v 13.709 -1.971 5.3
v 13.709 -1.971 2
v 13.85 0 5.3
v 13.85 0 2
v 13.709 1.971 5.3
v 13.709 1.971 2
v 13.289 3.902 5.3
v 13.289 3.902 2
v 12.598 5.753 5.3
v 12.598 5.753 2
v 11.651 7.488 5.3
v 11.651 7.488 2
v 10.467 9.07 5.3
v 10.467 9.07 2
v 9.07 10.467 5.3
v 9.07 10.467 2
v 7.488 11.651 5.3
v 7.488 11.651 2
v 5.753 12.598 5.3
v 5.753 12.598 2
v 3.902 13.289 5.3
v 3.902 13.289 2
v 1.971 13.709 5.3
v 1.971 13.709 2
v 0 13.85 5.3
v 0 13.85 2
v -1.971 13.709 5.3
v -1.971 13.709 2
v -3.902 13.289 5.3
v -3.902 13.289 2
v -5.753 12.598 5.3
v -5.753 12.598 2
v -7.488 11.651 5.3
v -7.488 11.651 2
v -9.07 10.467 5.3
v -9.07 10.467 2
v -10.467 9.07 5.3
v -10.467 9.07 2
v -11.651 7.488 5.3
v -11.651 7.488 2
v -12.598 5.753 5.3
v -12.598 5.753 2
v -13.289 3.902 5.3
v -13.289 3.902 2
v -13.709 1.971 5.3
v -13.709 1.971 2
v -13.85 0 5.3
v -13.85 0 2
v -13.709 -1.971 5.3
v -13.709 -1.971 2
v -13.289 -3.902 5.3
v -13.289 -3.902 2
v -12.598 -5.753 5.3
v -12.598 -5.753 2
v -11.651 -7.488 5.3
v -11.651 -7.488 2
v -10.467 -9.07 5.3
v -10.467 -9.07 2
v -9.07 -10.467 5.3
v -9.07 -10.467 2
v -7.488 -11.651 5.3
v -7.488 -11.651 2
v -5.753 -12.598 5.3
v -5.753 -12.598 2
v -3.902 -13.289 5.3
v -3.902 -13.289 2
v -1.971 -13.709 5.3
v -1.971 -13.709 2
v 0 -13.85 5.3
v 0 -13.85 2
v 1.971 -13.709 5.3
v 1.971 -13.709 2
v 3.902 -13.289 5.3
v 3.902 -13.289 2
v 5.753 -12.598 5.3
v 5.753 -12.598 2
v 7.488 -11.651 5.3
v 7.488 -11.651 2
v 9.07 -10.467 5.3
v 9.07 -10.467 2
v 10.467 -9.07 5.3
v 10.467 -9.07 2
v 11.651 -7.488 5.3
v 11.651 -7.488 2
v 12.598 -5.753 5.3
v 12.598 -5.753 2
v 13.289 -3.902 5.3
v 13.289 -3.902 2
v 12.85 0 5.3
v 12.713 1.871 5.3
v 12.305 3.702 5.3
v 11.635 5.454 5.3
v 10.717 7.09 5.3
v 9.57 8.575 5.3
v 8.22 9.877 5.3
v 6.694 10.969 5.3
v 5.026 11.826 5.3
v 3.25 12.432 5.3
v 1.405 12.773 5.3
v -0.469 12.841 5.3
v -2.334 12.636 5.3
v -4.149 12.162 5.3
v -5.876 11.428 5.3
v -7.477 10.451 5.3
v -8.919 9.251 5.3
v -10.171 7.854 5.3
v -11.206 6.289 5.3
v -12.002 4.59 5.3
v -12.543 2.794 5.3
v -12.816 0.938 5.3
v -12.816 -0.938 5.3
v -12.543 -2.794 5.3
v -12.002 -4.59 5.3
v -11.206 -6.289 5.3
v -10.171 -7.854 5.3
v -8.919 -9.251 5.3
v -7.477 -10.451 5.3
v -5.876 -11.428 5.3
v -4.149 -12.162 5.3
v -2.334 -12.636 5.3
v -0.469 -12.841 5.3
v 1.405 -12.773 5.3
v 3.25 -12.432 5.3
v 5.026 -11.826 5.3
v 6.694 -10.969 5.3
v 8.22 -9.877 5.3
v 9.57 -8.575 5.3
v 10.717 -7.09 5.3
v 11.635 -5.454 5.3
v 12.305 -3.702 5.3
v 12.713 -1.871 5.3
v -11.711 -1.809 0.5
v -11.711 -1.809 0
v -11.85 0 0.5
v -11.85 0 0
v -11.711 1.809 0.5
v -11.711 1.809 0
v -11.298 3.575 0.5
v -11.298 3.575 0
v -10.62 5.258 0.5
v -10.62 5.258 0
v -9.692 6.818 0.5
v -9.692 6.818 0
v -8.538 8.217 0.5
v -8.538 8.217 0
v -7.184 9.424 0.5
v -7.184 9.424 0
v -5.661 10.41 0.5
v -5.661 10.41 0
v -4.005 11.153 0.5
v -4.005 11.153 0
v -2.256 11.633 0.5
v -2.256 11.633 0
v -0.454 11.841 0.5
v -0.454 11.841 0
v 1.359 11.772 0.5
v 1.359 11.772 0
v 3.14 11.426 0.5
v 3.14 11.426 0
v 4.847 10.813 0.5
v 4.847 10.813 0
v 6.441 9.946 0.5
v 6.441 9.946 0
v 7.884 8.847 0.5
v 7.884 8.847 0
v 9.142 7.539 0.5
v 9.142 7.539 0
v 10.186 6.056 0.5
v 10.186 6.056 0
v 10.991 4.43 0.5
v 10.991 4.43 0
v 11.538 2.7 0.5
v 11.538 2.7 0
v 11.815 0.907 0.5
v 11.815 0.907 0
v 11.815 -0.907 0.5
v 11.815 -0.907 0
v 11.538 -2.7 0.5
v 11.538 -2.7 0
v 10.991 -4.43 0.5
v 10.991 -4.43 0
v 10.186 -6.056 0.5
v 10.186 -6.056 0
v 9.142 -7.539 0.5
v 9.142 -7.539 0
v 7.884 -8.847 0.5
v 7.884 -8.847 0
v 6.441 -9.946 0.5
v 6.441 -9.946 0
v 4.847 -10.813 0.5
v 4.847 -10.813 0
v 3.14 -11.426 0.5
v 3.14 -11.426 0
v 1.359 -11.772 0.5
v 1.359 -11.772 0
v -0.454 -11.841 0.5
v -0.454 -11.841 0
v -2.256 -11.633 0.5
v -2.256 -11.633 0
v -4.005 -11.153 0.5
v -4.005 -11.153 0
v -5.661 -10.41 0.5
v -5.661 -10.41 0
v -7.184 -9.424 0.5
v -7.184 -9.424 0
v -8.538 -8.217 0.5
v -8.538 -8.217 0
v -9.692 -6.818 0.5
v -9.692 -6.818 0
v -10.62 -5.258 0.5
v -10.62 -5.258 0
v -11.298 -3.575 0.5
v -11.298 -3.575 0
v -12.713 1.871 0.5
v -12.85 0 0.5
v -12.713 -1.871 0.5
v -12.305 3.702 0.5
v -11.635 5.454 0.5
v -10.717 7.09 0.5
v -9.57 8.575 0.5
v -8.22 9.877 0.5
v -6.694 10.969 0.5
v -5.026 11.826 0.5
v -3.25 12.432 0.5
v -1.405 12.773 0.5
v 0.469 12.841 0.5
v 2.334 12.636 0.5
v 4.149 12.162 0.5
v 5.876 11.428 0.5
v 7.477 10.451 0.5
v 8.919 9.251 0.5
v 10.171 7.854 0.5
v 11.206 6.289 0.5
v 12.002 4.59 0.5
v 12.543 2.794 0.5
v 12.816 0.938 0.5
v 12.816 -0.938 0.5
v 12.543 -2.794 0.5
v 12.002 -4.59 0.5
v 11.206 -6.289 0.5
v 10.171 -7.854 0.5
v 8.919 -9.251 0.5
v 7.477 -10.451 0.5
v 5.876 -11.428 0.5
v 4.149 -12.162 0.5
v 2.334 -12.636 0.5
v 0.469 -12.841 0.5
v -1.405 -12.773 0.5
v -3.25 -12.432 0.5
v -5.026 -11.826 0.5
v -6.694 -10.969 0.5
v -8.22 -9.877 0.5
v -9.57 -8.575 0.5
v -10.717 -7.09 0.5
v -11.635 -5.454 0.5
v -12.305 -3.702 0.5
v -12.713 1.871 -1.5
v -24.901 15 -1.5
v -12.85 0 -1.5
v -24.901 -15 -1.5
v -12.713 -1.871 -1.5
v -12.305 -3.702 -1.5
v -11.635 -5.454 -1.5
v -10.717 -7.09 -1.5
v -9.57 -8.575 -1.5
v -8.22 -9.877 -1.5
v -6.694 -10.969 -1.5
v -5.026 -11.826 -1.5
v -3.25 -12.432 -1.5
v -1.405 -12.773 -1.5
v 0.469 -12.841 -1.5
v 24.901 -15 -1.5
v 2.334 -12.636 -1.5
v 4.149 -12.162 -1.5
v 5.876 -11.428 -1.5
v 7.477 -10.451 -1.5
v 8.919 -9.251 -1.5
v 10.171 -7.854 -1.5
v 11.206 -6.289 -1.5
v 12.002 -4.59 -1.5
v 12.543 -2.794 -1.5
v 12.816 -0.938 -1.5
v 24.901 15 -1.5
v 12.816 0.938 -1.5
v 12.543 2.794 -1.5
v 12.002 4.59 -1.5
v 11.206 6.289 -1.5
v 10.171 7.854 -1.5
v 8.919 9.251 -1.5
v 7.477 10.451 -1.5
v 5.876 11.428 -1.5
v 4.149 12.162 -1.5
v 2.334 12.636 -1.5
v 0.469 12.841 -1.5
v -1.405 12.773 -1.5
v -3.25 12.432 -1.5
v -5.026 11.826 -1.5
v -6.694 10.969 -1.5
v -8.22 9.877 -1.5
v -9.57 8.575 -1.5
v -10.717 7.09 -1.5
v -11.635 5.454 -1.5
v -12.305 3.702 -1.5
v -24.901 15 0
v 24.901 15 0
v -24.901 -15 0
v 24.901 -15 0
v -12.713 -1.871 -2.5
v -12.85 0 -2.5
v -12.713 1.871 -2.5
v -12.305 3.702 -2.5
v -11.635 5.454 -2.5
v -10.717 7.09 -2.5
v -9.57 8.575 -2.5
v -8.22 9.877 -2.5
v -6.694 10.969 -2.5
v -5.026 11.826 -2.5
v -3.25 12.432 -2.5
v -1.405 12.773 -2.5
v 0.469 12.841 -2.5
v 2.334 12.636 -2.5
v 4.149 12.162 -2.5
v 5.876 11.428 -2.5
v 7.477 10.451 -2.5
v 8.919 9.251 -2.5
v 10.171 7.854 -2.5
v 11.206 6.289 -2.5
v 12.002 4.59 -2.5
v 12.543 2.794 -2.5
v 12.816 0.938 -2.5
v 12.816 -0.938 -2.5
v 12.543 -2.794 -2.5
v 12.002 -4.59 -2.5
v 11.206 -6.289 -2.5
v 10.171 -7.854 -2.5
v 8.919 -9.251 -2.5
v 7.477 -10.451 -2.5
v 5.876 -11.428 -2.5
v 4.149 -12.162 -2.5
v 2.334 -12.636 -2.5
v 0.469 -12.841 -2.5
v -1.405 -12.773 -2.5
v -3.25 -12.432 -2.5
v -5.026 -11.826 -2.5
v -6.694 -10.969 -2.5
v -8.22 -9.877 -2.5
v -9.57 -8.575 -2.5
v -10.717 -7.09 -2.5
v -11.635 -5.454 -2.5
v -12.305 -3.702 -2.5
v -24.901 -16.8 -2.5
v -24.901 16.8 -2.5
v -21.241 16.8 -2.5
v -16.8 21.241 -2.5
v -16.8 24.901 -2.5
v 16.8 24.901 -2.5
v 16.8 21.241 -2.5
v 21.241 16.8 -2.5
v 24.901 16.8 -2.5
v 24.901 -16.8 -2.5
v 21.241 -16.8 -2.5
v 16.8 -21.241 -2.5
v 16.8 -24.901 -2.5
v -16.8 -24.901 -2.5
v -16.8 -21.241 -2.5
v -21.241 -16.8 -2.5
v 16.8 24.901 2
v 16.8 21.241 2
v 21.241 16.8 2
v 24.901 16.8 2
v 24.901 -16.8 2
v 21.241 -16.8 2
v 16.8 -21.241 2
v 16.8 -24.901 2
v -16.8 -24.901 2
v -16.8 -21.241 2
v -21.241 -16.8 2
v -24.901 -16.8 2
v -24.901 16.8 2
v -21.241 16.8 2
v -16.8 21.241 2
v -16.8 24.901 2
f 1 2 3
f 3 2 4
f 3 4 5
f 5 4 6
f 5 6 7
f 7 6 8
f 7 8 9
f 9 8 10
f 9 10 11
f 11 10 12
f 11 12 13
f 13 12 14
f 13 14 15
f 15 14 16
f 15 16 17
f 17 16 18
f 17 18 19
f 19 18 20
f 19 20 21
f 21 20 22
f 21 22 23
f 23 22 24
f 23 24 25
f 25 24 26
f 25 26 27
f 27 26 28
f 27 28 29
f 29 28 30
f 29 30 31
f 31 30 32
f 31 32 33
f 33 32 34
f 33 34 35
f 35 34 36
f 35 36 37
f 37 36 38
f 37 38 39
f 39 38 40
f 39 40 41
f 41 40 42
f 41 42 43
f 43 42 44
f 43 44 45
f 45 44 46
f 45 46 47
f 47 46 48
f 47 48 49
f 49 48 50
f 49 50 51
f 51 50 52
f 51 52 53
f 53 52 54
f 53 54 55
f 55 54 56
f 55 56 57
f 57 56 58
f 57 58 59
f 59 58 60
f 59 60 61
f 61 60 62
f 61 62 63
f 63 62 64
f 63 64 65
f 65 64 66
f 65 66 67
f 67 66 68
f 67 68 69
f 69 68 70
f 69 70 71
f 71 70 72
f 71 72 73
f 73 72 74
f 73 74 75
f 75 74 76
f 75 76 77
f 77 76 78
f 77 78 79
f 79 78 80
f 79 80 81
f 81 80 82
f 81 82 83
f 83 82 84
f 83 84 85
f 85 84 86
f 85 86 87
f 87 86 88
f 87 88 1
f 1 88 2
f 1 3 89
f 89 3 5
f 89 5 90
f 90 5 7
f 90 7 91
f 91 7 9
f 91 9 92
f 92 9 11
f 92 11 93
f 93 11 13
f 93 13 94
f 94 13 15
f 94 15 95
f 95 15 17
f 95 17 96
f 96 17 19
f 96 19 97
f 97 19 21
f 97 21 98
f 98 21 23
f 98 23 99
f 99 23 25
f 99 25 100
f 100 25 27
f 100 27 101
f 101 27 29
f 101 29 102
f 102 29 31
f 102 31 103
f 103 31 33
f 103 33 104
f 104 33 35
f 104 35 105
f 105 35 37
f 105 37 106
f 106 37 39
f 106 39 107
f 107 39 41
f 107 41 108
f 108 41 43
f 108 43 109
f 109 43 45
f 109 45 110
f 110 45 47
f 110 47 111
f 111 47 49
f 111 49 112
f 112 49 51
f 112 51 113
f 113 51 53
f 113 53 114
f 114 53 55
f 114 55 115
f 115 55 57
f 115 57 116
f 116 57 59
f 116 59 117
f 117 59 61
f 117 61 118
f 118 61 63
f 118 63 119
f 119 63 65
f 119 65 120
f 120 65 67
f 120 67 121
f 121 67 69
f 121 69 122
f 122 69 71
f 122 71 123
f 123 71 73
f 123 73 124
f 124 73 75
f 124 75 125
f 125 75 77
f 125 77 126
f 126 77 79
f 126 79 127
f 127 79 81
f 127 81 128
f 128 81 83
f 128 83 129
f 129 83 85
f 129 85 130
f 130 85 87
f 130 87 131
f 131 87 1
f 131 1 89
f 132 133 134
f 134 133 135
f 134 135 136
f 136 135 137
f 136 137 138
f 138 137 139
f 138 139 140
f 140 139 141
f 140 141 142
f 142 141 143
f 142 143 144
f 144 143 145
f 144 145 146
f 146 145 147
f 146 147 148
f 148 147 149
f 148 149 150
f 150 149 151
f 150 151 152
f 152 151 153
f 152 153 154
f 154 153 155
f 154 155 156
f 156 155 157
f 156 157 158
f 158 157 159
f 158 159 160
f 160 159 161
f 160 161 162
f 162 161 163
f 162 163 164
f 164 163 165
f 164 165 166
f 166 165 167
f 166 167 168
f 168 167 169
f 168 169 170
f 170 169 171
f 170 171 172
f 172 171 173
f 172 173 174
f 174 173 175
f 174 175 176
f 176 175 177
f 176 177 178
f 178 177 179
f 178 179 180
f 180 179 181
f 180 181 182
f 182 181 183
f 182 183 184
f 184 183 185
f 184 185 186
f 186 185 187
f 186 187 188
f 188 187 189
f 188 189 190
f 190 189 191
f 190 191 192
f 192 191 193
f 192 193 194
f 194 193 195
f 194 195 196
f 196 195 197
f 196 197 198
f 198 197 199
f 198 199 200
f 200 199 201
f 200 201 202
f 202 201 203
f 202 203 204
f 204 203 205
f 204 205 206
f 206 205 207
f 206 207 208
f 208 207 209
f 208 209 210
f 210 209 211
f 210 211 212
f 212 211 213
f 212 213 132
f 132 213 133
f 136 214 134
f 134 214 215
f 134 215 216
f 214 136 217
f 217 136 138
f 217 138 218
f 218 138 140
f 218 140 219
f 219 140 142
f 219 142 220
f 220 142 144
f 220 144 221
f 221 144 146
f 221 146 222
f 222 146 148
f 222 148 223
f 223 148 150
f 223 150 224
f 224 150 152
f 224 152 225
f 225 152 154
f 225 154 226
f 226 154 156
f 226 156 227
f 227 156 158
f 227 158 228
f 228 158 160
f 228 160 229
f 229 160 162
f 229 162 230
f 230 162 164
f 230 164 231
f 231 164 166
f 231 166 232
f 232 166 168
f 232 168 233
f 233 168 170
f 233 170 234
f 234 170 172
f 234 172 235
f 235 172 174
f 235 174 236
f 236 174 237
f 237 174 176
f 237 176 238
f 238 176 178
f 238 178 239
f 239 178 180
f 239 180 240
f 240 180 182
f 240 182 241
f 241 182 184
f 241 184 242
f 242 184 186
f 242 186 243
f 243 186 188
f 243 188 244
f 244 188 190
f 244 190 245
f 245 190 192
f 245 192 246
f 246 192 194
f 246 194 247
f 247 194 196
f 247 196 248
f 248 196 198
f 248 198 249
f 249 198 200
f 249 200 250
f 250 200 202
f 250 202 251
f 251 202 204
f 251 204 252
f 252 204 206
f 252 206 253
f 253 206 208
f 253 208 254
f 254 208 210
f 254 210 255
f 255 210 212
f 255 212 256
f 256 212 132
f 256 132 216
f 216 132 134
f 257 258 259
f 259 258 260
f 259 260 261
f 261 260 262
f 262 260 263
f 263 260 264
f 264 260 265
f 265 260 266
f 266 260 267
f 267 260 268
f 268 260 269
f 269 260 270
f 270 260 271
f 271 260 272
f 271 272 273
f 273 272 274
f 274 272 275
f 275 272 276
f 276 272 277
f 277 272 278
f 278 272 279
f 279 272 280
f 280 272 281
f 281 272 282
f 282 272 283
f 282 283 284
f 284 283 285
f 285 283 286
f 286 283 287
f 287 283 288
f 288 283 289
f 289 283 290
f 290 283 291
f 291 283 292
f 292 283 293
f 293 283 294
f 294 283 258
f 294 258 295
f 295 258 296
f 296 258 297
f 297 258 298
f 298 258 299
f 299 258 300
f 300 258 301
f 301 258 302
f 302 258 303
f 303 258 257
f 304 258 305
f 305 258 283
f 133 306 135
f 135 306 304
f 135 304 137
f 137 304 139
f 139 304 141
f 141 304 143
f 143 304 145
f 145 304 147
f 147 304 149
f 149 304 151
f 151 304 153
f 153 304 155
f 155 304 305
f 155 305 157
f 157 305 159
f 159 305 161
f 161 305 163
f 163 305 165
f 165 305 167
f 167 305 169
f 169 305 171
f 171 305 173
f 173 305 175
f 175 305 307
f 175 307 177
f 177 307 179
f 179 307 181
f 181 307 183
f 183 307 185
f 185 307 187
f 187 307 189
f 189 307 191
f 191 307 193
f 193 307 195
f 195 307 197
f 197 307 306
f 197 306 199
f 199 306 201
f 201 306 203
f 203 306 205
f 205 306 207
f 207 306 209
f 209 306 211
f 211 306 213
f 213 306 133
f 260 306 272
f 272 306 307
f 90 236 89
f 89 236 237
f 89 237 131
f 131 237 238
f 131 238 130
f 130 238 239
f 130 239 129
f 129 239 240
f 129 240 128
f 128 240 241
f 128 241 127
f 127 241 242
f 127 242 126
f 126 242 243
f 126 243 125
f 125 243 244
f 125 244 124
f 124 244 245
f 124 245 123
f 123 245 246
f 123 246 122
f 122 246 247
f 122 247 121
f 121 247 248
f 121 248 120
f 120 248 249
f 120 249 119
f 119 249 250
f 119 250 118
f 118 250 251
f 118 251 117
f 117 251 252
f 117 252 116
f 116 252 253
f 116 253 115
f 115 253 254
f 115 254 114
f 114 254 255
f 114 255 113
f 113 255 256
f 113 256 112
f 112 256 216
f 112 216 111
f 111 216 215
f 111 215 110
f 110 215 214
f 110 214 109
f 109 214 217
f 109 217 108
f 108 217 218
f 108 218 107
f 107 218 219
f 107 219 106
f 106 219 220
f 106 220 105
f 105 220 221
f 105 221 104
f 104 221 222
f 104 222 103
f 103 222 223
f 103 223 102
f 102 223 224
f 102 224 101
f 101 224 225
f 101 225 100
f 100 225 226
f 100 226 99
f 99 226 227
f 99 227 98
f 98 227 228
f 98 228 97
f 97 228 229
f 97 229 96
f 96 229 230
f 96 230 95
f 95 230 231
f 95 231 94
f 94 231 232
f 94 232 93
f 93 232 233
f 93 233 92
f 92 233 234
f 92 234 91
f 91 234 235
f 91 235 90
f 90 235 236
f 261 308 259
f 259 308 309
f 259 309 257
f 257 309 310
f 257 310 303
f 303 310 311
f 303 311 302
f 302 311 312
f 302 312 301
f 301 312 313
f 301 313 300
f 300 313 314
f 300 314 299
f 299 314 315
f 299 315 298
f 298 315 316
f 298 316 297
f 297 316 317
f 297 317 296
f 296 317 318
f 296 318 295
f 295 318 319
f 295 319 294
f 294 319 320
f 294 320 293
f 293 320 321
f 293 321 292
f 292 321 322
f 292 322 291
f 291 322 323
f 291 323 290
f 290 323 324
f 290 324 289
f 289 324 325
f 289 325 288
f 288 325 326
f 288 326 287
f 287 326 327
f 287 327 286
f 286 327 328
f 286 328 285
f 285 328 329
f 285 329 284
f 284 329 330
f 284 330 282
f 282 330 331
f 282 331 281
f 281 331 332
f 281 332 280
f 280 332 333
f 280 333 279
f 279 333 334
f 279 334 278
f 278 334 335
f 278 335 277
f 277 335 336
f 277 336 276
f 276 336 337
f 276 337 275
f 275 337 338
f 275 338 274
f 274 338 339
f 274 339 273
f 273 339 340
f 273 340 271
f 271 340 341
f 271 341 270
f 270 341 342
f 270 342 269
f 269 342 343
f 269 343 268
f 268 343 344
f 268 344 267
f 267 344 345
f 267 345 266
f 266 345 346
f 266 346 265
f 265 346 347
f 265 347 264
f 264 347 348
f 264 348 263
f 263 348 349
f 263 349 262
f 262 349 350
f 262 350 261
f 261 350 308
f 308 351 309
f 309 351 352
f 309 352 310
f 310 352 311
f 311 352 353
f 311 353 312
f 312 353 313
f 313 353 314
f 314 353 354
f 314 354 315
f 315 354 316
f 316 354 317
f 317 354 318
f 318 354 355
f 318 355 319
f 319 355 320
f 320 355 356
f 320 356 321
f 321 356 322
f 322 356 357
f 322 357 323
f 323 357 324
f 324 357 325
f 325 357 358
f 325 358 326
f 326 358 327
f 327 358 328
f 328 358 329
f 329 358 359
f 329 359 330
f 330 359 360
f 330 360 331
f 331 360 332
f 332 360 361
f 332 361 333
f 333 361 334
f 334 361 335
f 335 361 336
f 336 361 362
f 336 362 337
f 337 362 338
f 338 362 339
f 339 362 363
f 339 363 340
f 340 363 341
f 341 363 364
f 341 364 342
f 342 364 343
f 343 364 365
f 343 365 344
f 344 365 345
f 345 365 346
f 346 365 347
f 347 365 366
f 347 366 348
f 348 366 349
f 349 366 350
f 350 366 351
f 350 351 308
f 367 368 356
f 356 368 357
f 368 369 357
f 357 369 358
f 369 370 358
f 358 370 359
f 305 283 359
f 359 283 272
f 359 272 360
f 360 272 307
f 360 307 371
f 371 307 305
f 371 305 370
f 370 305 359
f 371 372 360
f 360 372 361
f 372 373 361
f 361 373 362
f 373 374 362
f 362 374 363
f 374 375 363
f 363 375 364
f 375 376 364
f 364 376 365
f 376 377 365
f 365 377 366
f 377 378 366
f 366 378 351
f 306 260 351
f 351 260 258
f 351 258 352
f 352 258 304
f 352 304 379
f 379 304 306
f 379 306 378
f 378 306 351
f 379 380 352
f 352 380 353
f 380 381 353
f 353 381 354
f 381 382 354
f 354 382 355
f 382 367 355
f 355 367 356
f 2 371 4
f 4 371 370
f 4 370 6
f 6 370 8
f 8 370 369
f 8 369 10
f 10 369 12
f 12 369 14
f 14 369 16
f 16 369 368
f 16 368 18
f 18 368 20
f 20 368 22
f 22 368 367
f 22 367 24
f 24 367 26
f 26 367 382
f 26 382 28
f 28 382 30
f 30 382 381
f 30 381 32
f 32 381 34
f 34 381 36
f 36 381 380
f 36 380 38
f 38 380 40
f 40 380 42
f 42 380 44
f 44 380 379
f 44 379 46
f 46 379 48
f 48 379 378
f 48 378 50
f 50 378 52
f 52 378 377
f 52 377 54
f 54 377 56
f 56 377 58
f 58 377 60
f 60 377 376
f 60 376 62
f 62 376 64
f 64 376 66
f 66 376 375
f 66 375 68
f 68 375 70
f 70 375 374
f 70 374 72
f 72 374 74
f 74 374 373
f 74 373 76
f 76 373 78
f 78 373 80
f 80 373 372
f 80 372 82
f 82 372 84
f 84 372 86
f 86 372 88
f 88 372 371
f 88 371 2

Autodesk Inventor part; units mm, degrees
ref_plane "YZ Plane" through (0, 0, 0) normal (1, 0, 0) x (0, 1, 0)
ref_plane "XZ Plane" through (0, 0, 0) normal (0, 1, 0) x (-1, 0, 0)
ref_plane "XY Plane" through (0, 0, 0) normal (0, 0, 1) x (1, 0, 0)
sketch "Sketch1" plane through (0, 0, 0) normal (0, 0, 1) x (1, 0, 0)
  line L0 (-34.8609, 0) -> (34.8609, 0) construction
  line L1 (0, -34.8609) -> (0, 34.8609) construction
  line L2 (0, 0) -> (13.4339, 13.4339) construction
  line L3 (0, 0) -> (18.9985, 0) construction
  line L4 (0, 24.9006) -> (16.8, 24.9006)
  line L5 (16.8, 24.9006) -> (16.8, 21.2406)
  line L6 (16.8, 21.2406) -> (19.0203, 19.0203)
  line L7 (24.9006, 0) -> (24.9006, 16.8)
  line L8 (24.9006, 16.8) -> (21.2406, 16.8)
  line L9 (21.2406, 16.8) -> (19.0203, 19.0203)
  line L10 (0, 0) -> (-13.4339, 13.4339) construction
  line L11 (0, 0) -> (-18.9985, 0) construction
  line L12 (0, 24.9006) -> (-16.8, 24.9006)
  line L13 (-16.8, 24.9006) -> (-16.8, 21.2406)
  line L14 (-16.8, 21.2406) -> (-19.0203, 19.0203)
  line L15 (-24.9006, 0) -> (-24.9006, 16.8)
  line L16 (-24.9006, 16.8) -> (-21.2406, 16.8)
  line L17 (-21.2406, 16.8) -> (-19.0203, 19.0203)
  line L18 (0, 0) -> (13.4339, -13.4339) construction
  line L19 (0, -24.9006) -> (16.8, -24.9006)
  line L20 (16.8, -24.9006) -> (16.8, -21.2406)
  line L21 (16.8, -21.2406) -> (19.0203, -19.0203)
  line L22 (24.9006, 0) -> (24.9006, -16.8)
  line L23 (24.9006, -16.8) -> (21.2406, -16.8)
  line L24 (21.2406, -16.8) -> (19.0203, -19.0203)
  line L25 (0, 0) -> (-13.4339, -13.4339) construction
  line L26 (0, -24.9006) -> (-16.8, -24.9006)
  line L27 (-16.8, -24.9006) -> (-16.8, -21.2406)
  line L28 (-16.8, -21.2406) -> (-19.0203, -19.0203)
  line L29 (-24.9006, 0) -> (-24.9006, -16.8)
  line L30 (-24.9006, -16.8) -> (-21.2406, -16.8)
  line L31 (-21.2406, -16.8) -> (-19.0203, -19.0203)
  dimension "d0" = 45
  dimension "d1" = 3.14
  dimension "d2" = 3.66
  dimension "d3" = 16.8
extrude "Extrusion1" add sketch "Sketch1" along normal blind 2 and the other way blind 2.5
hole "Hole1" at (0, 0, 0) direction (0, 0, 1) diameter 25.7 end through all both
sketch "Skizze3" plane through (24.9006, -16.8, 2) normal (1, 0, 0) x (0, 0, -1)
  line L0 (0, 33.6) -> (4.5, 33.6) projected
  line L1 (4.5, -4.4406) -> (4.5, 0) projected
  line L2 (2, 33.6) -> (4.5, 33.6) construction
  line L3 (2.7, 33.6) -> (2.7, 0) construction
  line L4 (2, 2.8) -> (2, 36.4349) construction
  line L5 (4.5, 33.6) -> (4.5, 0) construction
  line L6 (0, 0) -> (4.5, 0) projected
  line L7 (2, 31.8) -> (3.5, 31.8)
  line L8 (3.5, 31.8) -> (3.5, 1.8)
  line L9 (3.5, 1.8) -> (2, 1.8)
  line L10 (2, 1.8) -> (2, 31.8)
  point P0 (2, 16.8)
  point P1 (3.5, 16.8)
  point P2 (2.7, 16.8)
  point P3 (2, 16.8)
  point P4 (4.5, 16.8)
  dimension "d25" = 30
  dimension "d26" = 1.5
  dimension "d51" = 1
extrude "Extrusion3" cut sketch "Skizze3" against normal up to surface (49.8013 mm away)
sketch "Skizze4" plane through (24.9006, -15, 0) normal (0, 0, -1) x (-1, 0, 0)
  circle A0 centre (24.9006, 15) radius 11.85
  circle A1 centre (24.9006, 15) radius 12.85 projected
  dimension "d33" = 23.7
  dimension "d34" = 1
extrude "Extrusion4" add sketch "Skizze4" against normal blind 0.5
sketch "Sketch7" plane through (0, 0, 2) normal (0, 0, 1) x (1, 0, 0)
  circle A0 centre (0, 0) radius 12.85 construction
  circle A1 centre (0, 0) radius 12.85
  circle A2 centre (0, 0) radius 13.85
  dimension "d52" = 25.7
  dimension "d53" = 1
extrude "Extrusion7" add sketch "Sketch7" along normal blind 3.3
equation "\"Lens_diameter\" = 25"
properties part number "polarbox_20_Lens_holder 1st design"
